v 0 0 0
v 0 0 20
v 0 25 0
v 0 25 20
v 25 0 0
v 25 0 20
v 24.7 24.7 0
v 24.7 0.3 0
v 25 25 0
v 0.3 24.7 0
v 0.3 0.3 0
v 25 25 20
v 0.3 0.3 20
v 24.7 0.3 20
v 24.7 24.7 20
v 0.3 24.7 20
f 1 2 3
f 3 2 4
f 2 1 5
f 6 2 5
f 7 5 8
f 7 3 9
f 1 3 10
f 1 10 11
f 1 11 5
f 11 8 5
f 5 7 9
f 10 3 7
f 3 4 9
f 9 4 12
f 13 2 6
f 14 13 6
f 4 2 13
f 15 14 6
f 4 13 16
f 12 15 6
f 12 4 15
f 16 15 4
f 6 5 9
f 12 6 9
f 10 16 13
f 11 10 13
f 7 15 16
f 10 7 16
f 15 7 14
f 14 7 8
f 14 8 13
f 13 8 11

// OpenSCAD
difference(){
	cube([25,25,20]);
	translate([0.3,0.3,0]) cube([25-0.6,25-0.6,20]);
}
